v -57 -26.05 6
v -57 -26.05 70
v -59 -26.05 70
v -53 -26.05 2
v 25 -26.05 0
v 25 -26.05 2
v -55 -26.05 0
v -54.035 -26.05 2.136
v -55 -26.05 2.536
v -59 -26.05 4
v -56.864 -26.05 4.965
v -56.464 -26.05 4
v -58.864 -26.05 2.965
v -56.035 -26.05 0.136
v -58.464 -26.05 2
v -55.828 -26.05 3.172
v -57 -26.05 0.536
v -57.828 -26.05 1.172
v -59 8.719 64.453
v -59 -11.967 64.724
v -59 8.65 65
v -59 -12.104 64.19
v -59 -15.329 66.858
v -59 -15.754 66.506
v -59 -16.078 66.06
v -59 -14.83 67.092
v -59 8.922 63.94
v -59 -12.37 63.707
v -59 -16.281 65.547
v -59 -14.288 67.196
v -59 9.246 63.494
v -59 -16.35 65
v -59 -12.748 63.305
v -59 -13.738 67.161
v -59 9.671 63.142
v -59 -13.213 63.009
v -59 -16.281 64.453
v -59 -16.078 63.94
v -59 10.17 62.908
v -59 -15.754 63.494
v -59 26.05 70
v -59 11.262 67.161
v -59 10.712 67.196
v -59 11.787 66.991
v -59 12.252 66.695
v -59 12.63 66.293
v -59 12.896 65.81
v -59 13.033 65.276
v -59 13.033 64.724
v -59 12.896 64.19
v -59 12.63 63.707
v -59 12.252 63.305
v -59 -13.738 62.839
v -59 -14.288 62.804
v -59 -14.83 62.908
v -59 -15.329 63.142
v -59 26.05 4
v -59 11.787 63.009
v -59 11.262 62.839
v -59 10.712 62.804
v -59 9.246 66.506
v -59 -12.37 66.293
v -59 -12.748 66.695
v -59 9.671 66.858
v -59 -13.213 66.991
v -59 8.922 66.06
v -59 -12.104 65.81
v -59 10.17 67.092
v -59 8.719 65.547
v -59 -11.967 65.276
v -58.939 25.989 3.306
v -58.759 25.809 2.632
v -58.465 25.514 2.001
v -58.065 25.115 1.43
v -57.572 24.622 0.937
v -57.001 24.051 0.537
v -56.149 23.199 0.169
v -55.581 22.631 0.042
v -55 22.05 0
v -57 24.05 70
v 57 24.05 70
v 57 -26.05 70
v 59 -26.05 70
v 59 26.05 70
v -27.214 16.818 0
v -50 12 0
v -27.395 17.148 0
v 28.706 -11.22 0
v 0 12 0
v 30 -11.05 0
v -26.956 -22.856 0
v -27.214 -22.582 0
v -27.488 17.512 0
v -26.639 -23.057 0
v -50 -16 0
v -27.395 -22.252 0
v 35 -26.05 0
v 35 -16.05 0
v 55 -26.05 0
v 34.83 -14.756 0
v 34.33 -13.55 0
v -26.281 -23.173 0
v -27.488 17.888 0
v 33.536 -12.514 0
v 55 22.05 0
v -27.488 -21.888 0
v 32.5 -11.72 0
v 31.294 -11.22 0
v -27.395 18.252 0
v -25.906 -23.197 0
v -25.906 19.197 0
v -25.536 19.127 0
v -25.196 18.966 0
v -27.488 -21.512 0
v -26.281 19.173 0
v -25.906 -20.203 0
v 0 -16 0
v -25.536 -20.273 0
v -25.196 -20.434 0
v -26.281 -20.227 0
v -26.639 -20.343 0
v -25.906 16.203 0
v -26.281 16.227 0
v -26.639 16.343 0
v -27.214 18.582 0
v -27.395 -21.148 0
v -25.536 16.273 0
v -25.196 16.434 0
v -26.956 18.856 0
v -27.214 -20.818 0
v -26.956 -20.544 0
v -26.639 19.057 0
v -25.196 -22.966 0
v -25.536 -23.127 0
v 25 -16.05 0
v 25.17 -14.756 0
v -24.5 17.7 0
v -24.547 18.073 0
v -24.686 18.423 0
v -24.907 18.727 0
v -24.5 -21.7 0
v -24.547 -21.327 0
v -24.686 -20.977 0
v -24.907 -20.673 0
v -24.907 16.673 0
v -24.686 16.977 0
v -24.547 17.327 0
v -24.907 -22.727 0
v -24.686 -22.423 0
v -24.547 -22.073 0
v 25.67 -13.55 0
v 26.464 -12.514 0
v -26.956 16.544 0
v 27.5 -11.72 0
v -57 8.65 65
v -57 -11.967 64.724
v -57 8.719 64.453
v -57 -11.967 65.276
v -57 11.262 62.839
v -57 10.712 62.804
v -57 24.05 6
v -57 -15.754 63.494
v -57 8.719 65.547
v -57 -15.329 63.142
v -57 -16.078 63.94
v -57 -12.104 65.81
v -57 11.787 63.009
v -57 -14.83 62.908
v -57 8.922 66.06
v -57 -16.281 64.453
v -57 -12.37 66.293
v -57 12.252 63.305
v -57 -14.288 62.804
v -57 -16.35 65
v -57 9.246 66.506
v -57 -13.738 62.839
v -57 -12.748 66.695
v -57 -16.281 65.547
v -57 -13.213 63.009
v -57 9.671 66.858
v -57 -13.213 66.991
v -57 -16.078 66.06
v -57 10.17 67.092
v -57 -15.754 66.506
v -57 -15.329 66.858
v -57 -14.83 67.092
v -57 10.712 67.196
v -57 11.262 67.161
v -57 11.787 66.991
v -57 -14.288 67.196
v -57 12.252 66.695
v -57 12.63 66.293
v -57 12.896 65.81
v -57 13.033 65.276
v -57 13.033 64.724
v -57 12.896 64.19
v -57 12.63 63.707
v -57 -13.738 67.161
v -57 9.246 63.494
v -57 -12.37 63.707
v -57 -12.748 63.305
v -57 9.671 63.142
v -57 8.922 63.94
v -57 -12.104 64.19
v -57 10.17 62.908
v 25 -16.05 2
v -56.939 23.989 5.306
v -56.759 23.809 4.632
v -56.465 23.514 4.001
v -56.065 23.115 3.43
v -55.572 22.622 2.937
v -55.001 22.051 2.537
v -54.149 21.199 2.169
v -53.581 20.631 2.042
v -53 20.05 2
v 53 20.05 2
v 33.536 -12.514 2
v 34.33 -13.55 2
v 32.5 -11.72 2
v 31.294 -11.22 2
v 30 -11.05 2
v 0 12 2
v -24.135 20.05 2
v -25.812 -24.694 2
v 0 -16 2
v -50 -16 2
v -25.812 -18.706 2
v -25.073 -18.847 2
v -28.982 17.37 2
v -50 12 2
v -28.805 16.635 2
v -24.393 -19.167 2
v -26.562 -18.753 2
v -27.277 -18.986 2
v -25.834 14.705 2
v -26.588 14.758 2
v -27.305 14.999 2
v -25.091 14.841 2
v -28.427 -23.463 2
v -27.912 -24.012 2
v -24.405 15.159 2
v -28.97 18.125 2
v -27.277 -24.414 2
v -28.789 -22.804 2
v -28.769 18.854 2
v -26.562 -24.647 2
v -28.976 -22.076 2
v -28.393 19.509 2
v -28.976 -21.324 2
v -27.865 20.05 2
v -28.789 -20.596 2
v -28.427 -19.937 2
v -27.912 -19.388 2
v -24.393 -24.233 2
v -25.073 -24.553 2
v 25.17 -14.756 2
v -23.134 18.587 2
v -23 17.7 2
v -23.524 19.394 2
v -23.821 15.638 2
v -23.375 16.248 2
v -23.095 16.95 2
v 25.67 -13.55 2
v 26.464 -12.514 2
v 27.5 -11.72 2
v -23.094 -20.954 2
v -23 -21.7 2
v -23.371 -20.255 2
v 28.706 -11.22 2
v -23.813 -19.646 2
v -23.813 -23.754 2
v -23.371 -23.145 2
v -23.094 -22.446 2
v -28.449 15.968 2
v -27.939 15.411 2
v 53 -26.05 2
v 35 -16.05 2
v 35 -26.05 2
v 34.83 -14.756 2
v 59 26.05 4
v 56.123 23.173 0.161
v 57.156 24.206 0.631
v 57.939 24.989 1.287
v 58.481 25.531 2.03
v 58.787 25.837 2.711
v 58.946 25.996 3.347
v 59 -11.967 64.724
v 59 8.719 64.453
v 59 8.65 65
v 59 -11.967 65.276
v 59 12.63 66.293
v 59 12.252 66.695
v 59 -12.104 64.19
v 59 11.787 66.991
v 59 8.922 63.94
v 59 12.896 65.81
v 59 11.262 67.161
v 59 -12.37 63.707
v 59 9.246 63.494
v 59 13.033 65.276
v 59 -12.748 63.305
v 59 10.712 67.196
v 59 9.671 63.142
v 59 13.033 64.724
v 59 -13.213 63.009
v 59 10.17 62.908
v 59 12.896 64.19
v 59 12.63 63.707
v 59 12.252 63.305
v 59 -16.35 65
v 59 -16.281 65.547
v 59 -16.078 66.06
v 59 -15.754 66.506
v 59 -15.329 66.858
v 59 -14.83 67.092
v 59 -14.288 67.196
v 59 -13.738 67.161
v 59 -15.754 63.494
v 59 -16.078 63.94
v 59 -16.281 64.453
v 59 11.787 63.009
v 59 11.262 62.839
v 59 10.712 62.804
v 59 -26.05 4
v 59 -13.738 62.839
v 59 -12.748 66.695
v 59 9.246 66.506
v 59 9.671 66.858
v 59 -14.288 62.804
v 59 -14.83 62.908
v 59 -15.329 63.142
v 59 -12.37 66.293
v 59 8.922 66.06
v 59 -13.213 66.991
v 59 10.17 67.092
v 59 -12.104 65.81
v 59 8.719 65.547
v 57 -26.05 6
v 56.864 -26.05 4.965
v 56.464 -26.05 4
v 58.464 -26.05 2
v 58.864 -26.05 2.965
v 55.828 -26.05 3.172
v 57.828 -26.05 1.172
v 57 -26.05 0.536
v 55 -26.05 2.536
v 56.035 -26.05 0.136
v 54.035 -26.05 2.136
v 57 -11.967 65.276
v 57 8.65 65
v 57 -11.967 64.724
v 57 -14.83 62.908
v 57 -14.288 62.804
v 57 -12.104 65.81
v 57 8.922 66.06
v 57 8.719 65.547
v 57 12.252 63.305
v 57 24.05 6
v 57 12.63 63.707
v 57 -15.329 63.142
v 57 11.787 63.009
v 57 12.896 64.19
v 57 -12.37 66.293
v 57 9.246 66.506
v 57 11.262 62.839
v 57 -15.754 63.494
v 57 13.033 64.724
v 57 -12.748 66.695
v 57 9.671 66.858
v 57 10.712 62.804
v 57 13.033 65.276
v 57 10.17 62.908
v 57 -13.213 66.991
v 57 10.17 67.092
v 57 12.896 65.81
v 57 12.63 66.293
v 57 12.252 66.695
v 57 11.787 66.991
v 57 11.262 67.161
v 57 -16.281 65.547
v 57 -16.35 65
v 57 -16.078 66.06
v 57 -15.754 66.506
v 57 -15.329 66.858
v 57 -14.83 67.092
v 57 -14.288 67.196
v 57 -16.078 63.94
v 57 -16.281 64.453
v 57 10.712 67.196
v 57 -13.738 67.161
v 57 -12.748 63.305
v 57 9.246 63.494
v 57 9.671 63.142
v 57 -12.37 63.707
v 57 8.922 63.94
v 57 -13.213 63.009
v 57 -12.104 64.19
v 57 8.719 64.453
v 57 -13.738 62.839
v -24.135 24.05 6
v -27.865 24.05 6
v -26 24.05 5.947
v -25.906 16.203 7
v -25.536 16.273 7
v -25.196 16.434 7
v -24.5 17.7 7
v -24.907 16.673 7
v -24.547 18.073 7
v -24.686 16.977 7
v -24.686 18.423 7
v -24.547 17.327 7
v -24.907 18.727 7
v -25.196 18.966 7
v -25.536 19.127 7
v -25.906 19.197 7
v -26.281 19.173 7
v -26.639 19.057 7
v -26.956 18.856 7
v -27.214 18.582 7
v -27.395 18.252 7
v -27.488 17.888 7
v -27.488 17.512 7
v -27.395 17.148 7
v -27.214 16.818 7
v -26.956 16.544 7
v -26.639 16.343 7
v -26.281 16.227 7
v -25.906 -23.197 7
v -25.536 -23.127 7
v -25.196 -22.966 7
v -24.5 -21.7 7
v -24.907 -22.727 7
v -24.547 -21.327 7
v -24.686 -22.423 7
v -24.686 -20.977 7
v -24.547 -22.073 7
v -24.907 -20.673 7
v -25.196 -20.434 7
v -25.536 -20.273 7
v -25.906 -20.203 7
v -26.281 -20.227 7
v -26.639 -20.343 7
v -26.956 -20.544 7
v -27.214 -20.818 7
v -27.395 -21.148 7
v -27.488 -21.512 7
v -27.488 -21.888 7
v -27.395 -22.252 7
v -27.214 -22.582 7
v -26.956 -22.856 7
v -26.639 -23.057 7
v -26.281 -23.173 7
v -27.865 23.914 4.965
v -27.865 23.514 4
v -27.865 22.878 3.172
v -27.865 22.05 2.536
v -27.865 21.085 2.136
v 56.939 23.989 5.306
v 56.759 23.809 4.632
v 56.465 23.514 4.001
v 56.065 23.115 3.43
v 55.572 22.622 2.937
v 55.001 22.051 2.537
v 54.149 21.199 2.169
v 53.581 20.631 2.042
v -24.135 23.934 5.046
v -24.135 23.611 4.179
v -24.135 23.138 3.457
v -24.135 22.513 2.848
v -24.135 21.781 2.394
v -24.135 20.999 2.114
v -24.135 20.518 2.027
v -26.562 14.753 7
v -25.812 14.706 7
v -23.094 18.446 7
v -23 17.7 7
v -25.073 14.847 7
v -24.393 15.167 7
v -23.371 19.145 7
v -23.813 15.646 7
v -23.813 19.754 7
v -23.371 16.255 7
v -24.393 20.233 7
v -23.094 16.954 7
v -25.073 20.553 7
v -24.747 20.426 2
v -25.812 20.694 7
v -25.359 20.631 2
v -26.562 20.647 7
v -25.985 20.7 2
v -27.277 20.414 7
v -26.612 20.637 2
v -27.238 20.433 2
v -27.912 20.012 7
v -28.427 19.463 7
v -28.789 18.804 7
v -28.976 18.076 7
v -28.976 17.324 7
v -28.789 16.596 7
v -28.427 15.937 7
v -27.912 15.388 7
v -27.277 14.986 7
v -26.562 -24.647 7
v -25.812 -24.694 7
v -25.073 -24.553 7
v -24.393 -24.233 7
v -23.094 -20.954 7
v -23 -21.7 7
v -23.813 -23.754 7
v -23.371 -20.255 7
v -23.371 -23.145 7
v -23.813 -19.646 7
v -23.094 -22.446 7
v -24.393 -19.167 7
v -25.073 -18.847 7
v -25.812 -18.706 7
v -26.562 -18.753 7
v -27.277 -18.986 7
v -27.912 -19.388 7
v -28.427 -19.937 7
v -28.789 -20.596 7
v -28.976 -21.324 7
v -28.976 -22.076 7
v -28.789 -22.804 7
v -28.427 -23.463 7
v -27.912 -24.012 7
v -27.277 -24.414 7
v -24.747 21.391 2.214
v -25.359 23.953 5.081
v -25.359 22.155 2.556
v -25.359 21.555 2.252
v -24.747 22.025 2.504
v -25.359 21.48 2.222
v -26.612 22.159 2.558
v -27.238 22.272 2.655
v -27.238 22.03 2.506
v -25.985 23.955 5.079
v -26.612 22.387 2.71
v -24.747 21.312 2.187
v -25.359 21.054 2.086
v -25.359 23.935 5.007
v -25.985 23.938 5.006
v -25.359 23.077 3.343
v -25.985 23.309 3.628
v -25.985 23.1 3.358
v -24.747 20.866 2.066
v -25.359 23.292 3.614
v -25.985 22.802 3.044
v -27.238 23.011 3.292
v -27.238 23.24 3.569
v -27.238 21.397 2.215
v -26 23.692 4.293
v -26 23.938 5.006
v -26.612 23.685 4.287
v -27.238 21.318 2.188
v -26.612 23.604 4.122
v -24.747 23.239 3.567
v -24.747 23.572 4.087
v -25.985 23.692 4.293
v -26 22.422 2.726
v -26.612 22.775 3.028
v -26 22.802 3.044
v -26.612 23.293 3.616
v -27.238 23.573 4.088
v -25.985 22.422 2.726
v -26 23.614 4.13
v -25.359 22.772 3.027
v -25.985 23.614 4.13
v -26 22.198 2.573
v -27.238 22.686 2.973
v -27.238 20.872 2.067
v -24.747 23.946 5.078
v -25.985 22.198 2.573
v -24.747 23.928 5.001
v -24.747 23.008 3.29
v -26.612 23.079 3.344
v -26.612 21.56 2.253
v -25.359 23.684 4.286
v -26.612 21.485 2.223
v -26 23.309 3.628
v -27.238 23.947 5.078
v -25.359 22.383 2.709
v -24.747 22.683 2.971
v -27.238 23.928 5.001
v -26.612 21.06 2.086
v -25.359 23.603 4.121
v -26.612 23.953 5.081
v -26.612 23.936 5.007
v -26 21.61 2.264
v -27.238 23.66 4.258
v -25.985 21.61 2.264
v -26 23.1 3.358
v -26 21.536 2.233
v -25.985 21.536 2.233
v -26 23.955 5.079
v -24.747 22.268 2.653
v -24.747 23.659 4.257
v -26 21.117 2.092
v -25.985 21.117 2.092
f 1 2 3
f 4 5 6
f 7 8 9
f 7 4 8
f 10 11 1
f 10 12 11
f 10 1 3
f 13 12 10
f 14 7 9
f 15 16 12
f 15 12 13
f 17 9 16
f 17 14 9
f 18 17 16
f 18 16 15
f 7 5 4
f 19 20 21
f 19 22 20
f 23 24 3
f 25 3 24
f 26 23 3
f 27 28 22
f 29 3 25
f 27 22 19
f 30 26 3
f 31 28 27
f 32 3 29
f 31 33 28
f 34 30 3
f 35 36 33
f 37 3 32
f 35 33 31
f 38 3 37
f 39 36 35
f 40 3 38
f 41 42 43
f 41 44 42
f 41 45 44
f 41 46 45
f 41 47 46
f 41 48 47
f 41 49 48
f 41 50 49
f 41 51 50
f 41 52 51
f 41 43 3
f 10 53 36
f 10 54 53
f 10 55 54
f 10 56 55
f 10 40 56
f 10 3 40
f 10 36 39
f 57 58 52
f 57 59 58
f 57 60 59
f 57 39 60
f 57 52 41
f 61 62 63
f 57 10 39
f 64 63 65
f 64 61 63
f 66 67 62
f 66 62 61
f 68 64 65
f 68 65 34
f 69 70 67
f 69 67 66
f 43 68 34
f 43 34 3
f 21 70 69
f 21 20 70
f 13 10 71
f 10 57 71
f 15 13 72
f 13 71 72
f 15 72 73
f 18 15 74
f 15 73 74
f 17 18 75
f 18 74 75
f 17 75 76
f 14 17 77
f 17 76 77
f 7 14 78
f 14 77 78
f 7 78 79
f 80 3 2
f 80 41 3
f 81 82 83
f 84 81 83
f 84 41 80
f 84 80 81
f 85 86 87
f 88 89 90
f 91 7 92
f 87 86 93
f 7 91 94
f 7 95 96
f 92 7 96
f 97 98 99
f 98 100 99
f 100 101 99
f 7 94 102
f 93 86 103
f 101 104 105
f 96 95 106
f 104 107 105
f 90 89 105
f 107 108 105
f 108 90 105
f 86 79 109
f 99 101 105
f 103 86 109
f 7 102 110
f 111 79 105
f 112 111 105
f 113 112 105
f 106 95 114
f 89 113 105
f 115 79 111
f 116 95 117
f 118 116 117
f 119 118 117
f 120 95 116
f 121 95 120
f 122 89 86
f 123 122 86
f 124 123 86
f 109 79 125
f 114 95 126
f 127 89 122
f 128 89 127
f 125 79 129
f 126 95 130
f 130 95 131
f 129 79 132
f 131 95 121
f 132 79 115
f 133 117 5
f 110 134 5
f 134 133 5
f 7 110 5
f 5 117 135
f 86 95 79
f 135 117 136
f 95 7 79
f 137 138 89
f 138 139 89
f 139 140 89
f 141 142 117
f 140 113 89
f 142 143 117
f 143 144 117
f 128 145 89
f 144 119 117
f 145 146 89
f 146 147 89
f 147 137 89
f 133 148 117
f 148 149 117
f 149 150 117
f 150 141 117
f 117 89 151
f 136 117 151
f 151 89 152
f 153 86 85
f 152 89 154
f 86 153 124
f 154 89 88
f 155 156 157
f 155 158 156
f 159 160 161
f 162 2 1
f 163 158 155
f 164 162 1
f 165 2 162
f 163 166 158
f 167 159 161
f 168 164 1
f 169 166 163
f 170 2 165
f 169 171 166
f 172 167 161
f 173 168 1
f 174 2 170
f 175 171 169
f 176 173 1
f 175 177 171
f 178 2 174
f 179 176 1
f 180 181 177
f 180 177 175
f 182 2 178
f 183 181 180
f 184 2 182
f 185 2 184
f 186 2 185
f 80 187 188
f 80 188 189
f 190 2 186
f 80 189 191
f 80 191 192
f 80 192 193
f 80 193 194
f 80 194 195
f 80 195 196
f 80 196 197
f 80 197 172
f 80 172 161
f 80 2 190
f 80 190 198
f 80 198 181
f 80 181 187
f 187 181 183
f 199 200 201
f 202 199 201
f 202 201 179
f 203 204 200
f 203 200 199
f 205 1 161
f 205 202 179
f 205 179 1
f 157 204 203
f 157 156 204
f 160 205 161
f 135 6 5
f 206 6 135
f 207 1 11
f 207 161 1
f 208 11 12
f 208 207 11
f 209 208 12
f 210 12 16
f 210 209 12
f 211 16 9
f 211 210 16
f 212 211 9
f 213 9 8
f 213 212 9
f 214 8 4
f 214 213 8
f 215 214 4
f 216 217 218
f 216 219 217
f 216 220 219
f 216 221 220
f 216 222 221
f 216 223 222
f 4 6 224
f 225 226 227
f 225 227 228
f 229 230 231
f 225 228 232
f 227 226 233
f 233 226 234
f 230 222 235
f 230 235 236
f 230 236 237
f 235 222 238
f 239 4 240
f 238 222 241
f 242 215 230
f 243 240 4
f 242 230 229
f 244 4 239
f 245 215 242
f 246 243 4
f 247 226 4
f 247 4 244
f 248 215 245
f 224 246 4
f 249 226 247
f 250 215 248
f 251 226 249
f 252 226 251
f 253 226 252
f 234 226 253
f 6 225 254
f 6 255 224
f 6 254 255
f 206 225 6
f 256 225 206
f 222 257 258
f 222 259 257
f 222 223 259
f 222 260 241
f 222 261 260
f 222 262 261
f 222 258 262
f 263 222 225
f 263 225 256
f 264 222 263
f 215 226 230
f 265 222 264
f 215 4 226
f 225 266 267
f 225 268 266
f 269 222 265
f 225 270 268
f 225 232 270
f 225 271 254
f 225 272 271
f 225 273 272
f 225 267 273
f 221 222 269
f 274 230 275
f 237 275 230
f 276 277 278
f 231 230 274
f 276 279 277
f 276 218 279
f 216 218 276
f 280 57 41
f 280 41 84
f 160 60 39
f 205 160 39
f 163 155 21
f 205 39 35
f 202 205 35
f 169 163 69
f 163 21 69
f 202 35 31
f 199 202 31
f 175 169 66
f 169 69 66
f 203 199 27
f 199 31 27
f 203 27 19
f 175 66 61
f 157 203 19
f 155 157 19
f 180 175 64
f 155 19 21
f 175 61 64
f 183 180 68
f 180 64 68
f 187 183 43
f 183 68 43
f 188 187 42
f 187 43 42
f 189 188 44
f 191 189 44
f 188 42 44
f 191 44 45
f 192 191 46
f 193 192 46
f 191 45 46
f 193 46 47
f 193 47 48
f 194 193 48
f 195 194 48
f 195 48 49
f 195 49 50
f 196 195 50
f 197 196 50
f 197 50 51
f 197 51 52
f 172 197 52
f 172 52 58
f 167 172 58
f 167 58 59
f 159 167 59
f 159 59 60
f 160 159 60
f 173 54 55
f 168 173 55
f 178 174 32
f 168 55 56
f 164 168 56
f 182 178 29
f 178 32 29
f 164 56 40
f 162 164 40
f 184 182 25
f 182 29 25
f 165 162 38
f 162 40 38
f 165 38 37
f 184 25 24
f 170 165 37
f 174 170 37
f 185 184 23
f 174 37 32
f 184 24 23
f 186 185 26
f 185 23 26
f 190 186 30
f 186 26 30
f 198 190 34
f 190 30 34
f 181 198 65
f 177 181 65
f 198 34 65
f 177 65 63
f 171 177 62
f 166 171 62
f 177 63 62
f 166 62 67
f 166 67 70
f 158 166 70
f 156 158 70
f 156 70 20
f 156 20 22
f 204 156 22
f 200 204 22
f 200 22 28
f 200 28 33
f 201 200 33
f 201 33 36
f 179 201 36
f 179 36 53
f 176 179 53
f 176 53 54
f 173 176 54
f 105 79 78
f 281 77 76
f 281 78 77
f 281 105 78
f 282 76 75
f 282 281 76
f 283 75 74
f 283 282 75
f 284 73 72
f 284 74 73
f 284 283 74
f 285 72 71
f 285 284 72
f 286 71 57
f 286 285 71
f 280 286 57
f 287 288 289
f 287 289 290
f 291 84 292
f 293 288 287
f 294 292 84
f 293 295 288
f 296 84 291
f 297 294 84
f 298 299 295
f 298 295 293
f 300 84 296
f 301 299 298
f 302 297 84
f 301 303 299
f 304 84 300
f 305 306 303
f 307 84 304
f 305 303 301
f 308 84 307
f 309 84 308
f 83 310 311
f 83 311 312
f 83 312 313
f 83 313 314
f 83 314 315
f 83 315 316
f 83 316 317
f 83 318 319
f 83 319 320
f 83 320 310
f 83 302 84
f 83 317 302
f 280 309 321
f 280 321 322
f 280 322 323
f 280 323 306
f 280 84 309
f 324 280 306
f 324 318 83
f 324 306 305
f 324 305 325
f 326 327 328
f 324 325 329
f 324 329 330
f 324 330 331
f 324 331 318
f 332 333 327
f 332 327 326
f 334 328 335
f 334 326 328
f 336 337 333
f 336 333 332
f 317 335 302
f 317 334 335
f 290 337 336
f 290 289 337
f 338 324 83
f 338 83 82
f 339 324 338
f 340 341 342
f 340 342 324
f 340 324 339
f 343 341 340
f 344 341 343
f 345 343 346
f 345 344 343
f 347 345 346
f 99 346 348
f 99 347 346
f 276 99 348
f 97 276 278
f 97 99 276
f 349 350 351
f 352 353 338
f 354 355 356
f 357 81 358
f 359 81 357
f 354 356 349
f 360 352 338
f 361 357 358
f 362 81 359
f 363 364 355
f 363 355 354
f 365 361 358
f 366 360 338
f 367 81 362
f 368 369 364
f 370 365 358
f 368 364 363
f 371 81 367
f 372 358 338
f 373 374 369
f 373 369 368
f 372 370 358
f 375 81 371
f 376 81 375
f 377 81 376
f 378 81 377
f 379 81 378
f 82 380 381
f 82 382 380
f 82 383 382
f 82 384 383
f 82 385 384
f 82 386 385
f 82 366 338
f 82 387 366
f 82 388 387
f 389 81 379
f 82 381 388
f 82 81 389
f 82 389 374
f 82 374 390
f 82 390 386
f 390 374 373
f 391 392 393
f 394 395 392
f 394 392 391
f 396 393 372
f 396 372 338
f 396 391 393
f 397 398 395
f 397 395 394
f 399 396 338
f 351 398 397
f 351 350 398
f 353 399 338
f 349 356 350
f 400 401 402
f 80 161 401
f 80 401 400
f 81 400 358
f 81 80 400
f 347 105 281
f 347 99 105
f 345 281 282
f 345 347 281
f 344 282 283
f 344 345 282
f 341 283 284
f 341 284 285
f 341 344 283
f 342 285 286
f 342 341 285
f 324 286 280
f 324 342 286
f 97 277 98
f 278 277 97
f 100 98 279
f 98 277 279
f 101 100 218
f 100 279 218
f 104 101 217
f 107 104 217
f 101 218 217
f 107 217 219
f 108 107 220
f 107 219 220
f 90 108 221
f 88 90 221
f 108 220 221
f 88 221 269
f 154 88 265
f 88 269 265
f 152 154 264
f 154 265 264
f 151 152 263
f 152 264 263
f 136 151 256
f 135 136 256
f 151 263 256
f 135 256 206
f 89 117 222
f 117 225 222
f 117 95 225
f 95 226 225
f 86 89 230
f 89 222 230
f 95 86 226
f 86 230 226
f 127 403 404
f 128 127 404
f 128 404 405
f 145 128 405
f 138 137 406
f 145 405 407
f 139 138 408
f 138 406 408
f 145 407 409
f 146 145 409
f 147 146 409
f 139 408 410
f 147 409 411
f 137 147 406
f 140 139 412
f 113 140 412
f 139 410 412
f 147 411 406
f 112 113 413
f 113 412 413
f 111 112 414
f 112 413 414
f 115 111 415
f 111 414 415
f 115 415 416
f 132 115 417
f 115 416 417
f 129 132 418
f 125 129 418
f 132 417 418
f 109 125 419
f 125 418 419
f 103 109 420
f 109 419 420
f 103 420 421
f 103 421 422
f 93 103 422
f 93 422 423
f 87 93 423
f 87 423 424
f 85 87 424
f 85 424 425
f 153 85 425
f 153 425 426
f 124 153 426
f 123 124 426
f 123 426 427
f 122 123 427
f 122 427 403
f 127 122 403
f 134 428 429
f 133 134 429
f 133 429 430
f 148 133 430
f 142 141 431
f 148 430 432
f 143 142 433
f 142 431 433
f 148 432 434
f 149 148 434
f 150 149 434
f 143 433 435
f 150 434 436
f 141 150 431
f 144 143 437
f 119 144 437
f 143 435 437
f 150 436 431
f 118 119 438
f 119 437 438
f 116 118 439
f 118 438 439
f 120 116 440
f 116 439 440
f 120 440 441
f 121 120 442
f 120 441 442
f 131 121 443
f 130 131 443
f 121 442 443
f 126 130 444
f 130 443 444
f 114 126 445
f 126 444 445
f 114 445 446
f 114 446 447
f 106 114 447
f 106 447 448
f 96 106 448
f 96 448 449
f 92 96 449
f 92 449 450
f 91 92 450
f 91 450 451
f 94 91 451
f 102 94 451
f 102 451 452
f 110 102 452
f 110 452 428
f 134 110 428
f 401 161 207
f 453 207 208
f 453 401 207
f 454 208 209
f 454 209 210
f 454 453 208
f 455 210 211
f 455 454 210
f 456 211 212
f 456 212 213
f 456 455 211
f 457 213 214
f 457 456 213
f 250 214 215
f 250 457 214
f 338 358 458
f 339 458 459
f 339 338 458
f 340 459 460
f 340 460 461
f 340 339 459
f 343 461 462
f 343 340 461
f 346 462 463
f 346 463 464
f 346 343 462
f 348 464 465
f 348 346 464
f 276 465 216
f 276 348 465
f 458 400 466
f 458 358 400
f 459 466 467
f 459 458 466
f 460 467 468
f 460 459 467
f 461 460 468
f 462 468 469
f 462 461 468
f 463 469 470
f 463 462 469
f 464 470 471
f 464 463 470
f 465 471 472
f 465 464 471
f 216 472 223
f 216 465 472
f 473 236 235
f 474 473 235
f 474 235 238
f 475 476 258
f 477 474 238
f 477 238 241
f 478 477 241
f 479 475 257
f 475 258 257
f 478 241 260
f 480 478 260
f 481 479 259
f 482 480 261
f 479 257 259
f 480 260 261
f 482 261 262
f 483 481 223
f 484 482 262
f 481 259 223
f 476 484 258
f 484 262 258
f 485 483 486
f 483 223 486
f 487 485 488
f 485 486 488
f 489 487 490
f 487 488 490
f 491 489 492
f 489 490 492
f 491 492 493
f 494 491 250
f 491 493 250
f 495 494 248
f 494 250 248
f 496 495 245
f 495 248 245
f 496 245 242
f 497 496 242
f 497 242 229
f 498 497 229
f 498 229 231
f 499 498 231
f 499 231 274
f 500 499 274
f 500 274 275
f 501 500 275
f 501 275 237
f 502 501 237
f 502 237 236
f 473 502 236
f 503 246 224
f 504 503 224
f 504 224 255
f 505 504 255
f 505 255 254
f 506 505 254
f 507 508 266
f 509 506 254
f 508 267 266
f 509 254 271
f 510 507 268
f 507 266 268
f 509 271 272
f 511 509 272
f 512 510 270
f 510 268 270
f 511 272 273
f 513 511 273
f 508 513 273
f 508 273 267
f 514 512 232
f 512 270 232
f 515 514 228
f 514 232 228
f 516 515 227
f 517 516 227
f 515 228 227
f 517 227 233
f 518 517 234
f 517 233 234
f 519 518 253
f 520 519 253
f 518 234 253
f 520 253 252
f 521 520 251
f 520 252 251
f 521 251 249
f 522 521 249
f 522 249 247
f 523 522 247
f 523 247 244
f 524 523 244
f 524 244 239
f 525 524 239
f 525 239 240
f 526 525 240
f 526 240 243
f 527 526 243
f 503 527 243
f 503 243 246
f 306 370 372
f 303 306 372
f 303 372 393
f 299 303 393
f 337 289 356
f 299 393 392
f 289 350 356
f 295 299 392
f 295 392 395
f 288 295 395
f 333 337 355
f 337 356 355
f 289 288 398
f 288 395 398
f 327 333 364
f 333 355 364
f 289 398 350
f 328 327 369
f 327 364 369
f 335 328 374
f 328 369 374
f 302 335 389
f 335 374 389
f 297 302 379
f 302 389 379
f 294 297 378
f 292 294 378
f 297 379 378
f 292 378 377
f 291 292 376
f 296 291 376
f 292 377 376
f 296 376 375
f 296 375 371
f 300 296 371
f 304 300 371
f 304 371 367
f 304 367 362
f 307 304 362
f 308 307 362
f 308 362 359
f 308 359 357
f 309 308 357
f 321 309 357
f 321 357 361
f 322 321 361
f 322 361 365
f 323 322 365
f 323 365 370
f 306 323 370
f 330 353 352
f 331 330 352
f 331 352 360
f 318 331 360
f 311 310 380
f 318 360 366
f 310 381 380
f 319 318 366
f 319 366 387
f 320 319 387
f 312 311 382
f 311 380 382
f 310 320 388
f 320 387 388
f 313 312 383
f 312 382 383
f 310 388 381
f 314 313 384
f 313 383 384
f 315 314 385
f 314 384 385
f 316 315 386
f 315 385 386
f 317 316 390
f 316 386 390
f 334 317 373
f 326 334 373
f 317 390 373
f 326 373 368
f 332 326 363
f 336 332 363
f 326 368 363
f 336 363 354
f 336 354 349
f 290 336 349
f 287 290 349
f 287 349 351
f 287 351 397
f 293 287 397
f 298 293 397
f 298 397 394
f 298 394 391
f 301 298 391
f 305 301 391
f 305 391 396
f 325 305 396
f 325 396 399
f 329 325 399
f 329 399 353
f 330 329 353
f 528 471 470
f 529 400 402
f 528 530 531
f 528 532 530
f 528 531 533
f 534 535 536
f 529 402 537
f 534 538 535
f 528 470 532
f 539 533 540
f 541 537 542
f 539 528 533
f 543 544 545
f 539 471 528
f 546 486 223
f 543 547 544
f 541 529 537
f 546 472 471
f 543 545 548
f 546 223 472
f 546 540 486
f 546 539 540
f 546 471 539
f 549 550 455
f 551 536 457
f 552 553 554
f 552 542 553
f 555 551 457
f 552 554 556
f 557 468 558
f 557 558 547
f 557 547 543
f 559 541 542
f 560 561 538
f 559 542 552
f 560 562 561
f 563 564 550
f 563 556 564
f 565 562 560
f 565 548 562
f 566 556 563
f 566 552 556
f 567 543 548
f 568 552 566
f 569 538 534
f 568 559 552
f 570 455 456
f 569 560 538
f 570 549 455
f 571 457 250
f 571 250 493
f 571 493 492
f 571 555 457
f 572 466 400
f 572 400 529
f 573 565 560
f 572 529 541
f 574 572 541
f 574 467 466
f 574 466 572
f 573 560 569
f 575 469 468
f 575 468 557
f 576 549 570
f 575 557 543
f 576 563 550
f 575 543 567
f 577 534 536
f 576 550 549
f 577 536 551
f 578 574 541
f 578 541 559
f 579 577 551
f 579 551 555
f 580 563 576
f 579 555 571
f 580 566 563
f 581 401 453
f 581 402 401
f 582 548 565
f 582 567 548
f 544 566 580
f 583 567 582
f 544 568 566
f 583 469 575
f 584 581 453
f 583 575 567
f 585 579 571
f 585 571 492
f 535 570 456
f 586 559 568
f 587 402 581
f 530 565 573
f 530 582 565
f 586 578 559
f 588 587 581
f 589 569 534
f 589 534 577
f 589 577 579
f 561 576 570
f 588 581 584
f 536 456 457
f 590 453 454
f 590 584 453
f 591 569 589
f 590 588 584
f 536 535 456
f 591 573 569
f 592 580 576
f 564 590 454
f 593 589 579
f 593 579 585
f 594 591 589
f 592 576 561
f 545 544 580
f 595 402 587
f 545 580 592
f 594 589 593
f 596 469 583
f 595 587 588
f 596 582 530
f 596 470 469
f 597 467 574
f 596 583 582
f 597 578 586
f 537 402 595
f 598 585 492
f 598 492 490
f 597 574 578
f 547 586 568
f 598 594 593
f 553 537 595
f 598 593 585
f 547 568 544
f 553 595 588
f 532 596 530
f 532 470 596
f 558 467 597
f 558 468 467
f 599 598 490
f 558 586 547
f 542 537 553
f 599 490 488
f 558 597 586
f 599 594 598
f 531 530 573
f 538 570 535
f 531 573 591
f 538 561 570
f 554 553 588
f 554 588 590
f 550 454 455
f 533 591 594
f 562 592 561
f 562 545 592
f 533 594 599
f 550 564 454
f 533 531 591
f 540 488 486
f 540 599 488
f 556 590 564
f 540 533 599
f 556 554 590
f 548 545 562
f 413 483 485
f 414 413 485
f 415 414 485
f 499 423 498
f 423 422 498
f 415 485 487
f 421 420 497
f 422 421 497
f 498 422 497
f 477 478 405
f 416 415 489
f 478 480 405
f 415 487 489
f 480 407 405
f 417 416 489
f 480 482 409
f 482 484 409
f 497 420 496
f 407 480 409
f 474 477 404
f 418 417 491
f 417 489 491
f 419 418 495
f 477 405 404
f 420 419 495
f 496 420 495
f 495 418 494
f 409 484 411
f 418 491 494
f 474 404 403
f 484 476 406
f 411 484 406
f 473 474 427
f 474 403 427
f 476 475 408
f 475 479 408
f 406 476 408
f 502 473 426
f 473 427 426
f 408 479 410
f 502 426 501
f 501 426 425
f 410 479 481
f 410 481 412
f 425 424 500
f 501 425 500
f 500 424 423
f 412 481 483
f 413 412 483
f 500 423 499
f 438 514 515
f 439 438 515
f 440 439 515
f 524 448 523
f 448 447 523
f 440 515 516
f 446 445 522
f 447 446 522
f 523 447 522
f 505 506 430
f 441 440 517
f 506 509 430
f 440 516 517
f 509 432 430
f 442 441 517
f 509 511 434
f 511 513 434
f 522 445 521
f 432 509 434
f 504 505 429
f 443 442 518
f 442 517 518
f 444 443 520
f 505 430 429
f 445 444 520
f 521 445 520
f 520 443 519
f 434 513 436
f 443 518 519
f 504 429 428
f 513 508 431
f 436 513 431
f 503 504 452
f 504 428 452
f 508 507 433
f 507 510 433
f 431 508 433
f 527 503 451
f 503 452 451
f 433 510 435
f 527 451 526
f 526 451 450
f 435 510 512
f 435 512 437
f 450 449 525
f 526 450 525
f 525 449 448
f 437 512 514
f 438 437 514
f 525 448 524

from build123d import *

# Parameters (mm, degrees)
SKETCH_W        = 118
SKETCH_H        = 52.1
PAD_DEPTH       = 70
SKETCH001_W     = 114
SKETCH001_H     = 50.1
POCKET_DEPTH    = 68
SKETCH002_W     = 50
SKETCH002_H     = 28
POCKET001_DEPTH = 2.001
SKETCH003_R     = 1.5
POCKET002_DEPTH = 2.001
SKETCH004_R     = 3
SKETCH004_R_2   = 1.5
PAD001_DEPTH    = 5
SKETCH005_R     = 2.2
POCKET003_DEPTH = 118.001
POCKET004_DEPTH = 2.001
FILLET_R        = 4
FILLET001_R     = 4


with BuildPart() as part:
    # Sketch → Pad (new body)
    with BuildSketch(Plane.XY):
        Rectangle(SKETCH_W, SKETCH_H)
    extrude(amount=PAD_DEPTH)

    # Sketch001 → Pocket (cut)
    with BuildSketch(Plane.XY.offset(70)):
        with Locations((0, -1)):
            Rectangle(SKETCH001_W, SKETCH001_H)
    extrude(amount=-POCKET_DEPTH, mode=Mode.SUBTRACT)

    # Sketch002 → Pocket001 (cut, through all)
    with BuildSketch(Plane.XY.offset(2)):
        with Locations((-25, -2)):
            Rectangle(SKETCH002_W, SKETCH002_H)
    extrude(amount=-POCKET001_DEPTH, mode=Mode.SUBTRACT)

    # Sketch003 → Pocket002 (cut, through all)
    with BuildSketch(Plane.XY.offset(2)):
        with Locations((-26, 17.7)):
            Circle(SKETCH003_R)
        with Locations((-26, -21.7)):
            Circle(SKETCH003_R)
    extrude(amount=-POCKET002_DEPTH, mode=Mode.SUBTRACT)

    # Sketch004 → Pad001 (new body)
    with BuildSketch(Plane.XY.offset(2)):
        with Locations((-26, 17.7)):
            Circle(SKETCH004_R)
        with Locations((-26, 17.7)):
            Circle(SKETCH004_R_2, mode=Mode.SUBTRACT)
        with Locations((-26, -21.7)):
            Circle(SKETCH004_R)
        with Locations((-26, -21.7)):
            Circle(SKETCH004_R_2, mode=Mode.SUBTRACT)
    extrude(amount=PAD001_DEPTH)

    # Sketch005 → Pocket003 (cut, through all)
    with BuildSketch(Plane(origin=(-59, 0, 0), x_dir=(0, -1, 0), z_dir=(-1, 0, 0))):
        with Locations((-10.85, 65)):
            Circle(SKETCH005_R)
        with Locations((14.15, 65)):
            Circle(SKETCH005_R)
    extrude(amount=-POCKET003_DEPTH, mode=Mode.SUBTRACT)

    # Sketch006 → Pocket004 (cut, through all)
    with BuildSketch(Plane.XY.offset(2)):
        with BuildLine():
            Line((35, -16.05), (35, -26.05))
            Line((35, -26.05), (25, -26.05))
            Line((25, -26.05), (25, -16.05))
            ThreePointArc((35, -16.05), (30, -11.049989), (25, -16.05))
        make_face()
    extrude(amount=-POCKET004_DEPTH, mode=Mode.SUBTRACT)

    # Fillet
    fillet_edges = [part.edges().sort_by_distance(p)[0] for p in [
        (0, 24.05, 2),
        (-57, -1, 2),
        (57, -1, 2),
    ]]
    fillet(fillet_edges, radius=FILLET_R)

    # Fillet001
    fillet001_edges = [part.edges().sort_by_distance(p)[0] for p in [
        (-59, 0, 0),
        (0, 26.05, 0),
        (59, 0, 0),
    ]]
    fillet(fillet001_edges, radius=FILLET001_R)


solid = part.part
